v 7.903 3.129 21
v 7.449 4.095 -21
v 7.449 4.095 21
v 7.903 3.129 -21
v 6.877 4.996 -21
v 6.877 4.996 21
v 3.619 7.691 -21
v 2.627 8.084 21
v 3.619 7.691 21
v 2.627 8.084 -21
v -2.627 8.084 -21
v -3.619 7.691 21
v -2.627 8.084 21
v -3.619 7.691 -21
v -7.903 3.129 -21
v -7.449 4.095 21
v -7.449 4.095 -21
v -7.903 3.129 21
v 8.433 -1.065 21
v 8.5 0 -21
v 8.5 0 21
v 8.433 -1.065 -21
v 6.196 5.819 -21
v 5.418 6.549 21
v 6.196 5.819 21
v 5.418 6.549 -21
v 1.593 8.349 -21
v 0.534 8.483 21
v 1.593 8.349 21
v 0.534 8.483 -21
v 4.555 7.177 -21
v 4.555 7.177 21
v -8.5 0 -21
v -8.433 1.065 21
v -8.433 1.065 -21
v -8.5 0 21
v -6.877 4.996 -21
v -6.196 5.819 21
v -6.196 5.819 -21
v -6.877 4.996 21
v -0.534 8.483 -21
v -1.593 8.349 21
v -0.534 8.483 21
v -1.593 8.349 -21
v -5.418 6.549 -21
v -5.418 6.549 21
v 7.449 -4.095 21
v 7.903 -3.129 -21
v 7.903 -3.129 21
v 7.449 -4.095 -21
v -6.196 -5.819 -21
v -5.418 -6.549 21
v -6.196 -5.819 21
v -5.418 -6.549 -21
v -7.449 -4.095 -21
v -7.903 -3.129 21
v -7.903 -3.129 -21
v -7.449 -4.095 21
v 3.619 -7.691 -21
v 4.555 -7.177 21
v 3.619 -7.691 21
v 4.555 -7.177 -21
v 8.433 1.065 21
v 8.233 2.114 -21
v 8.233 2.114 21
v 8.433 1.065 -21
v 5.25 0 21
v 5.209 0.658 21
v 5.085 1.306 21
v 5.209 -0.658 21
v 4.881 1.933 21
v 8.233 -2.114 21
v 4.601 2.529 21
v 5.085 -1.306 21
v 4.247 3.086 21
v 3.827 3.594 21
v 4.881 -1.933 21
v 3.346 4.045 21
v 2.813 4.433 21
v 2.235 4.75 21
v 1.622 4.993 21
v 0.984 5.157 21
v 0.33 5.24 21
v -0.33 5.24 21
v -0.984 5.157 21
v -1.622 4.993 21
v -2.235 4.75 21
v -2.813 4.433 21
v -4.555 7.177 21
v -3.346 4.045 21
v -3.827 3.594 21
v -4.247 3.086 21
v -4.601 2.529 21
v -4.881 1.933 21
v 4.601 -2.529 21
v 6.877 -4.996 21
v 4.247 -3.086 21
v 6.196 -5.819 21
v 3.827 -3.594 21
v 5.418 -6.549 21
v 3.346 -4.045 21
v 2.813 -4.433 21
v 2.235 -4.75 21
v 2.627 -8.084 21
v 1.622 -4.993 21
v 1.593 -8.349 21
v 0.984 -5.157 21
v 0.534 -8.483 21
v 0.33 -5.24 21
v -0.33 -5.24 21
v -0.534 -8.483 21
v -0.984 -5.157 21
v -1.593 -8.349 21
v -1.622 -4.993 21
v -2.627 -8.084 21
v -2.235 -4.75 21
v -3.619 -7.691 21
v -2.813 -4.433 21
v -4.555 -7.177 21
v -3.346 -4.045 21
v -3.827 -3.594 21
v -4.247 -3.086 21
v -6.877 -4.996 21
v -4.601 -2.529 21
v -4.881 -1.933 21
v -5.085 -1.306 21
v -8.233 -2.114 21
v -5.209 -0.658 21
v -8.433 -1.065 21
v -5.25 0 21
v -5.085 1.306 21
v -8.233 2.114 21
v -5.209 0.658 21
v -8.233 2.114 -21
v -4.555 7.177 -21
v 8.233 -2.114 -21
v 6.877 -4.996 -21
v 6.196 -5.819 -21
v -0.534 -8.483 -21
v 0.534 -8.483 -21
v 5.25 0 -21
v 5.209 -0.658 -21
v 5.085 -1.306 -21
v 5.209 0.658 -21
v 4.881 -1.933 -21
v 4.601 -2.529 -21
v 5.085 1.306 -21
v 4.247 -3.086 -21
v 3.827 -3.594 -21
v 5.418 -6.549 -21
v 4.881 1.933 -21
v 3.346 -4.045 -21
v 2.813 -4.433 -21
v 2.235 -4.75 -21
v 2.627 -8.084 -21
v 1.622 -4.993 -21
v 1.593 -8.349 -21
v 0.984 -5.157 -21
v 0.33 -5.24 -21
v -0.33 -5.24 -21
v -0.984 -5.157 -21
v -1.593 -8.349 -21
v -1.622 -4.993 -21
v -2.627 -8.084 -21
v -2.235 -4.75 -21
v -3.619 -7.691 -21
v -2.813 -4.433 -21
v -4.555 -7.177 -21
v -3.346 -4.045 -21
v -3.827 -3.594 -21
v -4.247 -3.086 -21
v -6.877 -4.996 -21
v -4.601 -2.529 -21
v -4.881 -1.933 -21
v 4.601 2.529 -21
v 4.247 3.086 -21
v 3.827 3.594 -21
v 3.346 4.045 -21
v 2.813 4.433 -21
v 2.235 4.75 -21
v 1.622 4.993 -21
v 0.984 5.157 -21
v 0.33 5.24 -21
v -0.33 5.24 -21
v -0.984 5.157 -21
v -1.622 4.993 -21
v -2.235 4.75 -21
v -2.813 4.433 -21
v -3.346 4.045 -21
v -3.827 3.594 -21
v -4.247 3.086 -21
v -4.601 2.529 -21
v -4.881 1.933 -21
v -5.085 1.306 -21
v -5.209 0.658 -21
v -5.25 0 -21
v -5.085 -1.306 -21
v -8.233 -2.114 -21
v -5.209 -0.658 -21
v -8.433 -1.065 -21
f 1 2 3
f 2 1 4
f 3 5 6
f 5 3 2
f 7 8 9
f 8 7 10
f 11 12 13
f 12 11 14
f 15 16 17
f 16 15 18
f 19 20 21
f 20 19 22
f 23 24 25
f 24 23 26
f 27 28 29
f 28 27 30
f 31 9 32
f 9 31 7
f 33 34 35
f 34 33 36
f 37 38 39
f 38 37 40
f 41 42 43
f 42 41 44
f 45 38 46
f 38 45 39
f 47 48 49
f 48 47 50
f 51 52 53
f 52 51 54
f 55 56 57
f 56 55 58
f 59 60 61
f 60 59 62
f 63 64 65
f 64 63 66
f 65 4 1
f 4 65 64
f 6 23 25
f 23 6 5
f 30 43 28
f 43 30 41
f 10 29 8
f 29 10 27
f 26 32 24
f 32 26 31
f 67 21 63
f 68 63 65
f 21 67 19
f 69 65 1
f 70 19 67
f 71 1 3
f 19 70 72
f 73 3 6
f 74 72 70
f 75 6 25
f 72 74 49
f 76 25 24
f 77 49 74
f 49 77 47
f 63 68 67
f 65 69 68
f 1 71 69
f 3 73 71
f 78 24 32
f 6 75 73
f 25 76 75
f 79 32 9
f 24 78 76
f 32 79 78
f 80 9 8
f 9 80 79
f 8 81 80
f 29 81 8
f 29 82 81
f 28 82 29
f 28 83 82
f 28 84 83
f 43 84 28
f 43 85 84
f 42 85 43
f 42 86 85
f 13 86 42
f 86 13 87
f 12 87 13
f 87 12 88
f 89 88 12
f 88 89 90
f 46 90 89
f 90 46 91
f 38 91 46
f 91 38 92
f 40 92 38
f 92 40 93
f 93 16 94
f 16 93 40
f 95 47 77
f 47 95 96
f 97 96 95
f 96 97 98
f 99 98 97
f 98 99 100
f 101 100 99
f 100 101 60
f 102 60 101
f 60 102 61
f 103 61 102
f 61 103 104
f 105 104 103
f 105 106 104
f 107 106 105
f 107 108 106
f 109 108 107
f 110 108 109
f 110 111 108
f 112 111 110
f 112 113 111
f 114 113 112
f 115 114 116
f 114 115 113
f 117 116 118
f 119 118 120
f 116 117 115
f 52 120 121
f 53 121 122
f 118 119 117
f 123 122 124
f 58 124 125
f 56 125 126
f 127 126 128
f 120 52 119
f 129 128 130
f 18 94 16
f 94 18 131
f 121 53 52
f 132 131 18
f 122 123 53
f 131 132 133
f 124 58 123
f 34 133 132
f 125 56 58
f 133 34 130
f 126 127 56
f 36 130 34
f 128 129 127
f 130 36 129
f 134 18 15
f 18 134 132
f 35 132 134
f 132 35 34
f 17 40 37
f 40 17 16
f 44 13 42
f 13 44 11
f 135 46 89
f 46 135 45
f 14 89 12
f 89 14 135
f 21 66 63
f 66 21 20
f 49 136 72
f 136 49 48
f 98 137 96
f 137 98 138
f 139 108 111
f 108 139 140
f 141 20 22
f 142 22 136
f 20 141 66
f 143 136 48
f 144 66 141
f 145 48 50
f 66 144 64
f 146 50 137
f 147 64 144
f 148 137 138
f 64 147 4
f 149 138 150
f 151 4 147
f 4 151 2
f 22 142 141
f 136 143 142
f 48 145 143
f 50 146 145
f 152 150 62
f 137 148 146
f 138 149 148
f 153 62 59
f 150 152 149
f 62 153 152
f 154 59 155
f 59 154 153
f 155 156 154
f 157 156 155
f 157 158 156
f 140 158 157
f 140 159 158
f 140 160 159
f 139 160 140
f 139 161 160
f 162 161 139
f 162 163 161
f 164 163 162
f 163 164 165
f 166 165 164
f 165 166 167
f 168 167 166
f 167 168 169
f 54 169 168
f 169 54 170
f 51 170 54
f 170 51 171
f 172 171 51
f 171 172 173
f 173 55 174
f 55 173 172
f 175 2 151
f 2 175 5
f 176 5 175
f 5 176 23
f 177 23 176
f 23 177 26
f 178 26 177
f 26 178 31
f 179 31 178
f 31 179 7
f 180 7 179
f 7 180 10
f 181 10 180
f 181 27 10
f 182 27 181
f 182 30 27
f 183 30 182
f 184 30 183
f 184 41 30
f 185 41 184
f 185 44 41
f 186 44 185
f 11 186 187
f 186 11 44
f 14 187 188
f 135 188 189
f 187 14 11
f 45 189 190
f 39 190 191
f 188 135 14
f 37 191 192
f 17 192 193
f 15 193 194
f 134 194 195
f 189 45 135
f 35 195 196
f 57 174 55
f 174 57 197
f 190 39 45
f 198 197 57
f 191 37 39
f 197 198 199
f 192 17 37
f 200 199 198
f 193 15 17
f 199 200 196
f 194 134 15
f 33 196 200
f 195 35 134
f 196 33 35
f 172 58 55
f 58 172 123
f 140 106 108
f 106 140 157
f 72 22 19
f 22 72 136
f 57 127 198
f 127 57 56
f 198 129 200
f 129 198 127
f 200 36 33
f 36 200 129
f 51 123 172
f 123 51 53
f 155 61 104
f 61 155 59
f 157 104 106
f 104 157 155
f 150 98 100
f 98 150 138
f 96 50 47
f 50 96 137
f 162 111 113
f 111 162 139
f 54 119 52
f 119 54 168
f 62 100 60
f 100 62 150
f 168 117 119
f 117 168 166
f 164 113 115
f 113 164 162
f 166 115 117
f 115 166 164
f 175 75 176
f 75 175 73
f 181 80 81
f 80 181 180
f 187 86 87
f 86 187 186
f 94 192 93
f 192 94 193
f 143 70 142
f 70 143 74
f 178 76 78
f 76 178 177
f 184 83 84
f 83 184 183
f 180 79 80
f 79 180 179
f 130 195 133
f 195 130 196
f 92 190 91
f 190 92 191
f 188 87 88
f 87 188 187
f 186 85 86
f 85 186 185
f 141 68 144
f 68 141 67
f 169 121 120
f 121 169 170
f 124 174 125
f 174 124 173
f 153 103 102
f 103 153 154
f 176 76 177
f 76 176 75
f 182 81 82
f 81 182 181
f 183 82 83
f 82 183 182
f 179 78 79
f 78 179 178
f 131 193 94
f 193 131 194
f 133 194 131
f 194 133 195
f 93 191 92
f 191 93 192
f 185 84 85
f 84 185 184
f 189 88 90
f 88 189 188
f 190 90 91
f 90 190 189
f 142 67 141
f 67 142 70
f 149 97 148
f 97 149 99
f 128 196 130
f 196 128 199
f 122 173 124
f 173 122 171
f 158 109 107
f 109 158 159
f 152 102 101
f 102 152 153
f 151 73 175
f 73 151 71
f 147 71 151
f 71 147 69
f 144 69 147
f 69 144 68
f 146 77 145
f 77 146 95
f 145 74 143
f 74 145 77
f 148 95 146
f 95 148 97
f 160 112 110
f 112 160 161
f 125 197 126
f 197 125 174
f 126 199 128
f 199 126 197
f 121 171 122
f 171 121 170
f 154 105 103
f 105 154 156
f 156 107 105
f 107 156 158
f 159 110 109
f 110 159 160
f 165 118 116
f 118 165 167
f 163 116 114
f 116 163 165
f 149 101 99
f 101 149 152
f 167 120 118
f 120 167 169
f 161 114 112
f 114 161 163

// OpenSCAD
$fn = 50;


difference() {
	union() {
		translate(v = [0, 0, -21.0000000000]) {
			cylinder(h = 42, r = 8.5000000000);
		}
	}
	union() {
		translate(v = [0, 0, -100.0000000000]) {
			cylinder(h = 200, r = 5.2500000000);
		}
	}
}
